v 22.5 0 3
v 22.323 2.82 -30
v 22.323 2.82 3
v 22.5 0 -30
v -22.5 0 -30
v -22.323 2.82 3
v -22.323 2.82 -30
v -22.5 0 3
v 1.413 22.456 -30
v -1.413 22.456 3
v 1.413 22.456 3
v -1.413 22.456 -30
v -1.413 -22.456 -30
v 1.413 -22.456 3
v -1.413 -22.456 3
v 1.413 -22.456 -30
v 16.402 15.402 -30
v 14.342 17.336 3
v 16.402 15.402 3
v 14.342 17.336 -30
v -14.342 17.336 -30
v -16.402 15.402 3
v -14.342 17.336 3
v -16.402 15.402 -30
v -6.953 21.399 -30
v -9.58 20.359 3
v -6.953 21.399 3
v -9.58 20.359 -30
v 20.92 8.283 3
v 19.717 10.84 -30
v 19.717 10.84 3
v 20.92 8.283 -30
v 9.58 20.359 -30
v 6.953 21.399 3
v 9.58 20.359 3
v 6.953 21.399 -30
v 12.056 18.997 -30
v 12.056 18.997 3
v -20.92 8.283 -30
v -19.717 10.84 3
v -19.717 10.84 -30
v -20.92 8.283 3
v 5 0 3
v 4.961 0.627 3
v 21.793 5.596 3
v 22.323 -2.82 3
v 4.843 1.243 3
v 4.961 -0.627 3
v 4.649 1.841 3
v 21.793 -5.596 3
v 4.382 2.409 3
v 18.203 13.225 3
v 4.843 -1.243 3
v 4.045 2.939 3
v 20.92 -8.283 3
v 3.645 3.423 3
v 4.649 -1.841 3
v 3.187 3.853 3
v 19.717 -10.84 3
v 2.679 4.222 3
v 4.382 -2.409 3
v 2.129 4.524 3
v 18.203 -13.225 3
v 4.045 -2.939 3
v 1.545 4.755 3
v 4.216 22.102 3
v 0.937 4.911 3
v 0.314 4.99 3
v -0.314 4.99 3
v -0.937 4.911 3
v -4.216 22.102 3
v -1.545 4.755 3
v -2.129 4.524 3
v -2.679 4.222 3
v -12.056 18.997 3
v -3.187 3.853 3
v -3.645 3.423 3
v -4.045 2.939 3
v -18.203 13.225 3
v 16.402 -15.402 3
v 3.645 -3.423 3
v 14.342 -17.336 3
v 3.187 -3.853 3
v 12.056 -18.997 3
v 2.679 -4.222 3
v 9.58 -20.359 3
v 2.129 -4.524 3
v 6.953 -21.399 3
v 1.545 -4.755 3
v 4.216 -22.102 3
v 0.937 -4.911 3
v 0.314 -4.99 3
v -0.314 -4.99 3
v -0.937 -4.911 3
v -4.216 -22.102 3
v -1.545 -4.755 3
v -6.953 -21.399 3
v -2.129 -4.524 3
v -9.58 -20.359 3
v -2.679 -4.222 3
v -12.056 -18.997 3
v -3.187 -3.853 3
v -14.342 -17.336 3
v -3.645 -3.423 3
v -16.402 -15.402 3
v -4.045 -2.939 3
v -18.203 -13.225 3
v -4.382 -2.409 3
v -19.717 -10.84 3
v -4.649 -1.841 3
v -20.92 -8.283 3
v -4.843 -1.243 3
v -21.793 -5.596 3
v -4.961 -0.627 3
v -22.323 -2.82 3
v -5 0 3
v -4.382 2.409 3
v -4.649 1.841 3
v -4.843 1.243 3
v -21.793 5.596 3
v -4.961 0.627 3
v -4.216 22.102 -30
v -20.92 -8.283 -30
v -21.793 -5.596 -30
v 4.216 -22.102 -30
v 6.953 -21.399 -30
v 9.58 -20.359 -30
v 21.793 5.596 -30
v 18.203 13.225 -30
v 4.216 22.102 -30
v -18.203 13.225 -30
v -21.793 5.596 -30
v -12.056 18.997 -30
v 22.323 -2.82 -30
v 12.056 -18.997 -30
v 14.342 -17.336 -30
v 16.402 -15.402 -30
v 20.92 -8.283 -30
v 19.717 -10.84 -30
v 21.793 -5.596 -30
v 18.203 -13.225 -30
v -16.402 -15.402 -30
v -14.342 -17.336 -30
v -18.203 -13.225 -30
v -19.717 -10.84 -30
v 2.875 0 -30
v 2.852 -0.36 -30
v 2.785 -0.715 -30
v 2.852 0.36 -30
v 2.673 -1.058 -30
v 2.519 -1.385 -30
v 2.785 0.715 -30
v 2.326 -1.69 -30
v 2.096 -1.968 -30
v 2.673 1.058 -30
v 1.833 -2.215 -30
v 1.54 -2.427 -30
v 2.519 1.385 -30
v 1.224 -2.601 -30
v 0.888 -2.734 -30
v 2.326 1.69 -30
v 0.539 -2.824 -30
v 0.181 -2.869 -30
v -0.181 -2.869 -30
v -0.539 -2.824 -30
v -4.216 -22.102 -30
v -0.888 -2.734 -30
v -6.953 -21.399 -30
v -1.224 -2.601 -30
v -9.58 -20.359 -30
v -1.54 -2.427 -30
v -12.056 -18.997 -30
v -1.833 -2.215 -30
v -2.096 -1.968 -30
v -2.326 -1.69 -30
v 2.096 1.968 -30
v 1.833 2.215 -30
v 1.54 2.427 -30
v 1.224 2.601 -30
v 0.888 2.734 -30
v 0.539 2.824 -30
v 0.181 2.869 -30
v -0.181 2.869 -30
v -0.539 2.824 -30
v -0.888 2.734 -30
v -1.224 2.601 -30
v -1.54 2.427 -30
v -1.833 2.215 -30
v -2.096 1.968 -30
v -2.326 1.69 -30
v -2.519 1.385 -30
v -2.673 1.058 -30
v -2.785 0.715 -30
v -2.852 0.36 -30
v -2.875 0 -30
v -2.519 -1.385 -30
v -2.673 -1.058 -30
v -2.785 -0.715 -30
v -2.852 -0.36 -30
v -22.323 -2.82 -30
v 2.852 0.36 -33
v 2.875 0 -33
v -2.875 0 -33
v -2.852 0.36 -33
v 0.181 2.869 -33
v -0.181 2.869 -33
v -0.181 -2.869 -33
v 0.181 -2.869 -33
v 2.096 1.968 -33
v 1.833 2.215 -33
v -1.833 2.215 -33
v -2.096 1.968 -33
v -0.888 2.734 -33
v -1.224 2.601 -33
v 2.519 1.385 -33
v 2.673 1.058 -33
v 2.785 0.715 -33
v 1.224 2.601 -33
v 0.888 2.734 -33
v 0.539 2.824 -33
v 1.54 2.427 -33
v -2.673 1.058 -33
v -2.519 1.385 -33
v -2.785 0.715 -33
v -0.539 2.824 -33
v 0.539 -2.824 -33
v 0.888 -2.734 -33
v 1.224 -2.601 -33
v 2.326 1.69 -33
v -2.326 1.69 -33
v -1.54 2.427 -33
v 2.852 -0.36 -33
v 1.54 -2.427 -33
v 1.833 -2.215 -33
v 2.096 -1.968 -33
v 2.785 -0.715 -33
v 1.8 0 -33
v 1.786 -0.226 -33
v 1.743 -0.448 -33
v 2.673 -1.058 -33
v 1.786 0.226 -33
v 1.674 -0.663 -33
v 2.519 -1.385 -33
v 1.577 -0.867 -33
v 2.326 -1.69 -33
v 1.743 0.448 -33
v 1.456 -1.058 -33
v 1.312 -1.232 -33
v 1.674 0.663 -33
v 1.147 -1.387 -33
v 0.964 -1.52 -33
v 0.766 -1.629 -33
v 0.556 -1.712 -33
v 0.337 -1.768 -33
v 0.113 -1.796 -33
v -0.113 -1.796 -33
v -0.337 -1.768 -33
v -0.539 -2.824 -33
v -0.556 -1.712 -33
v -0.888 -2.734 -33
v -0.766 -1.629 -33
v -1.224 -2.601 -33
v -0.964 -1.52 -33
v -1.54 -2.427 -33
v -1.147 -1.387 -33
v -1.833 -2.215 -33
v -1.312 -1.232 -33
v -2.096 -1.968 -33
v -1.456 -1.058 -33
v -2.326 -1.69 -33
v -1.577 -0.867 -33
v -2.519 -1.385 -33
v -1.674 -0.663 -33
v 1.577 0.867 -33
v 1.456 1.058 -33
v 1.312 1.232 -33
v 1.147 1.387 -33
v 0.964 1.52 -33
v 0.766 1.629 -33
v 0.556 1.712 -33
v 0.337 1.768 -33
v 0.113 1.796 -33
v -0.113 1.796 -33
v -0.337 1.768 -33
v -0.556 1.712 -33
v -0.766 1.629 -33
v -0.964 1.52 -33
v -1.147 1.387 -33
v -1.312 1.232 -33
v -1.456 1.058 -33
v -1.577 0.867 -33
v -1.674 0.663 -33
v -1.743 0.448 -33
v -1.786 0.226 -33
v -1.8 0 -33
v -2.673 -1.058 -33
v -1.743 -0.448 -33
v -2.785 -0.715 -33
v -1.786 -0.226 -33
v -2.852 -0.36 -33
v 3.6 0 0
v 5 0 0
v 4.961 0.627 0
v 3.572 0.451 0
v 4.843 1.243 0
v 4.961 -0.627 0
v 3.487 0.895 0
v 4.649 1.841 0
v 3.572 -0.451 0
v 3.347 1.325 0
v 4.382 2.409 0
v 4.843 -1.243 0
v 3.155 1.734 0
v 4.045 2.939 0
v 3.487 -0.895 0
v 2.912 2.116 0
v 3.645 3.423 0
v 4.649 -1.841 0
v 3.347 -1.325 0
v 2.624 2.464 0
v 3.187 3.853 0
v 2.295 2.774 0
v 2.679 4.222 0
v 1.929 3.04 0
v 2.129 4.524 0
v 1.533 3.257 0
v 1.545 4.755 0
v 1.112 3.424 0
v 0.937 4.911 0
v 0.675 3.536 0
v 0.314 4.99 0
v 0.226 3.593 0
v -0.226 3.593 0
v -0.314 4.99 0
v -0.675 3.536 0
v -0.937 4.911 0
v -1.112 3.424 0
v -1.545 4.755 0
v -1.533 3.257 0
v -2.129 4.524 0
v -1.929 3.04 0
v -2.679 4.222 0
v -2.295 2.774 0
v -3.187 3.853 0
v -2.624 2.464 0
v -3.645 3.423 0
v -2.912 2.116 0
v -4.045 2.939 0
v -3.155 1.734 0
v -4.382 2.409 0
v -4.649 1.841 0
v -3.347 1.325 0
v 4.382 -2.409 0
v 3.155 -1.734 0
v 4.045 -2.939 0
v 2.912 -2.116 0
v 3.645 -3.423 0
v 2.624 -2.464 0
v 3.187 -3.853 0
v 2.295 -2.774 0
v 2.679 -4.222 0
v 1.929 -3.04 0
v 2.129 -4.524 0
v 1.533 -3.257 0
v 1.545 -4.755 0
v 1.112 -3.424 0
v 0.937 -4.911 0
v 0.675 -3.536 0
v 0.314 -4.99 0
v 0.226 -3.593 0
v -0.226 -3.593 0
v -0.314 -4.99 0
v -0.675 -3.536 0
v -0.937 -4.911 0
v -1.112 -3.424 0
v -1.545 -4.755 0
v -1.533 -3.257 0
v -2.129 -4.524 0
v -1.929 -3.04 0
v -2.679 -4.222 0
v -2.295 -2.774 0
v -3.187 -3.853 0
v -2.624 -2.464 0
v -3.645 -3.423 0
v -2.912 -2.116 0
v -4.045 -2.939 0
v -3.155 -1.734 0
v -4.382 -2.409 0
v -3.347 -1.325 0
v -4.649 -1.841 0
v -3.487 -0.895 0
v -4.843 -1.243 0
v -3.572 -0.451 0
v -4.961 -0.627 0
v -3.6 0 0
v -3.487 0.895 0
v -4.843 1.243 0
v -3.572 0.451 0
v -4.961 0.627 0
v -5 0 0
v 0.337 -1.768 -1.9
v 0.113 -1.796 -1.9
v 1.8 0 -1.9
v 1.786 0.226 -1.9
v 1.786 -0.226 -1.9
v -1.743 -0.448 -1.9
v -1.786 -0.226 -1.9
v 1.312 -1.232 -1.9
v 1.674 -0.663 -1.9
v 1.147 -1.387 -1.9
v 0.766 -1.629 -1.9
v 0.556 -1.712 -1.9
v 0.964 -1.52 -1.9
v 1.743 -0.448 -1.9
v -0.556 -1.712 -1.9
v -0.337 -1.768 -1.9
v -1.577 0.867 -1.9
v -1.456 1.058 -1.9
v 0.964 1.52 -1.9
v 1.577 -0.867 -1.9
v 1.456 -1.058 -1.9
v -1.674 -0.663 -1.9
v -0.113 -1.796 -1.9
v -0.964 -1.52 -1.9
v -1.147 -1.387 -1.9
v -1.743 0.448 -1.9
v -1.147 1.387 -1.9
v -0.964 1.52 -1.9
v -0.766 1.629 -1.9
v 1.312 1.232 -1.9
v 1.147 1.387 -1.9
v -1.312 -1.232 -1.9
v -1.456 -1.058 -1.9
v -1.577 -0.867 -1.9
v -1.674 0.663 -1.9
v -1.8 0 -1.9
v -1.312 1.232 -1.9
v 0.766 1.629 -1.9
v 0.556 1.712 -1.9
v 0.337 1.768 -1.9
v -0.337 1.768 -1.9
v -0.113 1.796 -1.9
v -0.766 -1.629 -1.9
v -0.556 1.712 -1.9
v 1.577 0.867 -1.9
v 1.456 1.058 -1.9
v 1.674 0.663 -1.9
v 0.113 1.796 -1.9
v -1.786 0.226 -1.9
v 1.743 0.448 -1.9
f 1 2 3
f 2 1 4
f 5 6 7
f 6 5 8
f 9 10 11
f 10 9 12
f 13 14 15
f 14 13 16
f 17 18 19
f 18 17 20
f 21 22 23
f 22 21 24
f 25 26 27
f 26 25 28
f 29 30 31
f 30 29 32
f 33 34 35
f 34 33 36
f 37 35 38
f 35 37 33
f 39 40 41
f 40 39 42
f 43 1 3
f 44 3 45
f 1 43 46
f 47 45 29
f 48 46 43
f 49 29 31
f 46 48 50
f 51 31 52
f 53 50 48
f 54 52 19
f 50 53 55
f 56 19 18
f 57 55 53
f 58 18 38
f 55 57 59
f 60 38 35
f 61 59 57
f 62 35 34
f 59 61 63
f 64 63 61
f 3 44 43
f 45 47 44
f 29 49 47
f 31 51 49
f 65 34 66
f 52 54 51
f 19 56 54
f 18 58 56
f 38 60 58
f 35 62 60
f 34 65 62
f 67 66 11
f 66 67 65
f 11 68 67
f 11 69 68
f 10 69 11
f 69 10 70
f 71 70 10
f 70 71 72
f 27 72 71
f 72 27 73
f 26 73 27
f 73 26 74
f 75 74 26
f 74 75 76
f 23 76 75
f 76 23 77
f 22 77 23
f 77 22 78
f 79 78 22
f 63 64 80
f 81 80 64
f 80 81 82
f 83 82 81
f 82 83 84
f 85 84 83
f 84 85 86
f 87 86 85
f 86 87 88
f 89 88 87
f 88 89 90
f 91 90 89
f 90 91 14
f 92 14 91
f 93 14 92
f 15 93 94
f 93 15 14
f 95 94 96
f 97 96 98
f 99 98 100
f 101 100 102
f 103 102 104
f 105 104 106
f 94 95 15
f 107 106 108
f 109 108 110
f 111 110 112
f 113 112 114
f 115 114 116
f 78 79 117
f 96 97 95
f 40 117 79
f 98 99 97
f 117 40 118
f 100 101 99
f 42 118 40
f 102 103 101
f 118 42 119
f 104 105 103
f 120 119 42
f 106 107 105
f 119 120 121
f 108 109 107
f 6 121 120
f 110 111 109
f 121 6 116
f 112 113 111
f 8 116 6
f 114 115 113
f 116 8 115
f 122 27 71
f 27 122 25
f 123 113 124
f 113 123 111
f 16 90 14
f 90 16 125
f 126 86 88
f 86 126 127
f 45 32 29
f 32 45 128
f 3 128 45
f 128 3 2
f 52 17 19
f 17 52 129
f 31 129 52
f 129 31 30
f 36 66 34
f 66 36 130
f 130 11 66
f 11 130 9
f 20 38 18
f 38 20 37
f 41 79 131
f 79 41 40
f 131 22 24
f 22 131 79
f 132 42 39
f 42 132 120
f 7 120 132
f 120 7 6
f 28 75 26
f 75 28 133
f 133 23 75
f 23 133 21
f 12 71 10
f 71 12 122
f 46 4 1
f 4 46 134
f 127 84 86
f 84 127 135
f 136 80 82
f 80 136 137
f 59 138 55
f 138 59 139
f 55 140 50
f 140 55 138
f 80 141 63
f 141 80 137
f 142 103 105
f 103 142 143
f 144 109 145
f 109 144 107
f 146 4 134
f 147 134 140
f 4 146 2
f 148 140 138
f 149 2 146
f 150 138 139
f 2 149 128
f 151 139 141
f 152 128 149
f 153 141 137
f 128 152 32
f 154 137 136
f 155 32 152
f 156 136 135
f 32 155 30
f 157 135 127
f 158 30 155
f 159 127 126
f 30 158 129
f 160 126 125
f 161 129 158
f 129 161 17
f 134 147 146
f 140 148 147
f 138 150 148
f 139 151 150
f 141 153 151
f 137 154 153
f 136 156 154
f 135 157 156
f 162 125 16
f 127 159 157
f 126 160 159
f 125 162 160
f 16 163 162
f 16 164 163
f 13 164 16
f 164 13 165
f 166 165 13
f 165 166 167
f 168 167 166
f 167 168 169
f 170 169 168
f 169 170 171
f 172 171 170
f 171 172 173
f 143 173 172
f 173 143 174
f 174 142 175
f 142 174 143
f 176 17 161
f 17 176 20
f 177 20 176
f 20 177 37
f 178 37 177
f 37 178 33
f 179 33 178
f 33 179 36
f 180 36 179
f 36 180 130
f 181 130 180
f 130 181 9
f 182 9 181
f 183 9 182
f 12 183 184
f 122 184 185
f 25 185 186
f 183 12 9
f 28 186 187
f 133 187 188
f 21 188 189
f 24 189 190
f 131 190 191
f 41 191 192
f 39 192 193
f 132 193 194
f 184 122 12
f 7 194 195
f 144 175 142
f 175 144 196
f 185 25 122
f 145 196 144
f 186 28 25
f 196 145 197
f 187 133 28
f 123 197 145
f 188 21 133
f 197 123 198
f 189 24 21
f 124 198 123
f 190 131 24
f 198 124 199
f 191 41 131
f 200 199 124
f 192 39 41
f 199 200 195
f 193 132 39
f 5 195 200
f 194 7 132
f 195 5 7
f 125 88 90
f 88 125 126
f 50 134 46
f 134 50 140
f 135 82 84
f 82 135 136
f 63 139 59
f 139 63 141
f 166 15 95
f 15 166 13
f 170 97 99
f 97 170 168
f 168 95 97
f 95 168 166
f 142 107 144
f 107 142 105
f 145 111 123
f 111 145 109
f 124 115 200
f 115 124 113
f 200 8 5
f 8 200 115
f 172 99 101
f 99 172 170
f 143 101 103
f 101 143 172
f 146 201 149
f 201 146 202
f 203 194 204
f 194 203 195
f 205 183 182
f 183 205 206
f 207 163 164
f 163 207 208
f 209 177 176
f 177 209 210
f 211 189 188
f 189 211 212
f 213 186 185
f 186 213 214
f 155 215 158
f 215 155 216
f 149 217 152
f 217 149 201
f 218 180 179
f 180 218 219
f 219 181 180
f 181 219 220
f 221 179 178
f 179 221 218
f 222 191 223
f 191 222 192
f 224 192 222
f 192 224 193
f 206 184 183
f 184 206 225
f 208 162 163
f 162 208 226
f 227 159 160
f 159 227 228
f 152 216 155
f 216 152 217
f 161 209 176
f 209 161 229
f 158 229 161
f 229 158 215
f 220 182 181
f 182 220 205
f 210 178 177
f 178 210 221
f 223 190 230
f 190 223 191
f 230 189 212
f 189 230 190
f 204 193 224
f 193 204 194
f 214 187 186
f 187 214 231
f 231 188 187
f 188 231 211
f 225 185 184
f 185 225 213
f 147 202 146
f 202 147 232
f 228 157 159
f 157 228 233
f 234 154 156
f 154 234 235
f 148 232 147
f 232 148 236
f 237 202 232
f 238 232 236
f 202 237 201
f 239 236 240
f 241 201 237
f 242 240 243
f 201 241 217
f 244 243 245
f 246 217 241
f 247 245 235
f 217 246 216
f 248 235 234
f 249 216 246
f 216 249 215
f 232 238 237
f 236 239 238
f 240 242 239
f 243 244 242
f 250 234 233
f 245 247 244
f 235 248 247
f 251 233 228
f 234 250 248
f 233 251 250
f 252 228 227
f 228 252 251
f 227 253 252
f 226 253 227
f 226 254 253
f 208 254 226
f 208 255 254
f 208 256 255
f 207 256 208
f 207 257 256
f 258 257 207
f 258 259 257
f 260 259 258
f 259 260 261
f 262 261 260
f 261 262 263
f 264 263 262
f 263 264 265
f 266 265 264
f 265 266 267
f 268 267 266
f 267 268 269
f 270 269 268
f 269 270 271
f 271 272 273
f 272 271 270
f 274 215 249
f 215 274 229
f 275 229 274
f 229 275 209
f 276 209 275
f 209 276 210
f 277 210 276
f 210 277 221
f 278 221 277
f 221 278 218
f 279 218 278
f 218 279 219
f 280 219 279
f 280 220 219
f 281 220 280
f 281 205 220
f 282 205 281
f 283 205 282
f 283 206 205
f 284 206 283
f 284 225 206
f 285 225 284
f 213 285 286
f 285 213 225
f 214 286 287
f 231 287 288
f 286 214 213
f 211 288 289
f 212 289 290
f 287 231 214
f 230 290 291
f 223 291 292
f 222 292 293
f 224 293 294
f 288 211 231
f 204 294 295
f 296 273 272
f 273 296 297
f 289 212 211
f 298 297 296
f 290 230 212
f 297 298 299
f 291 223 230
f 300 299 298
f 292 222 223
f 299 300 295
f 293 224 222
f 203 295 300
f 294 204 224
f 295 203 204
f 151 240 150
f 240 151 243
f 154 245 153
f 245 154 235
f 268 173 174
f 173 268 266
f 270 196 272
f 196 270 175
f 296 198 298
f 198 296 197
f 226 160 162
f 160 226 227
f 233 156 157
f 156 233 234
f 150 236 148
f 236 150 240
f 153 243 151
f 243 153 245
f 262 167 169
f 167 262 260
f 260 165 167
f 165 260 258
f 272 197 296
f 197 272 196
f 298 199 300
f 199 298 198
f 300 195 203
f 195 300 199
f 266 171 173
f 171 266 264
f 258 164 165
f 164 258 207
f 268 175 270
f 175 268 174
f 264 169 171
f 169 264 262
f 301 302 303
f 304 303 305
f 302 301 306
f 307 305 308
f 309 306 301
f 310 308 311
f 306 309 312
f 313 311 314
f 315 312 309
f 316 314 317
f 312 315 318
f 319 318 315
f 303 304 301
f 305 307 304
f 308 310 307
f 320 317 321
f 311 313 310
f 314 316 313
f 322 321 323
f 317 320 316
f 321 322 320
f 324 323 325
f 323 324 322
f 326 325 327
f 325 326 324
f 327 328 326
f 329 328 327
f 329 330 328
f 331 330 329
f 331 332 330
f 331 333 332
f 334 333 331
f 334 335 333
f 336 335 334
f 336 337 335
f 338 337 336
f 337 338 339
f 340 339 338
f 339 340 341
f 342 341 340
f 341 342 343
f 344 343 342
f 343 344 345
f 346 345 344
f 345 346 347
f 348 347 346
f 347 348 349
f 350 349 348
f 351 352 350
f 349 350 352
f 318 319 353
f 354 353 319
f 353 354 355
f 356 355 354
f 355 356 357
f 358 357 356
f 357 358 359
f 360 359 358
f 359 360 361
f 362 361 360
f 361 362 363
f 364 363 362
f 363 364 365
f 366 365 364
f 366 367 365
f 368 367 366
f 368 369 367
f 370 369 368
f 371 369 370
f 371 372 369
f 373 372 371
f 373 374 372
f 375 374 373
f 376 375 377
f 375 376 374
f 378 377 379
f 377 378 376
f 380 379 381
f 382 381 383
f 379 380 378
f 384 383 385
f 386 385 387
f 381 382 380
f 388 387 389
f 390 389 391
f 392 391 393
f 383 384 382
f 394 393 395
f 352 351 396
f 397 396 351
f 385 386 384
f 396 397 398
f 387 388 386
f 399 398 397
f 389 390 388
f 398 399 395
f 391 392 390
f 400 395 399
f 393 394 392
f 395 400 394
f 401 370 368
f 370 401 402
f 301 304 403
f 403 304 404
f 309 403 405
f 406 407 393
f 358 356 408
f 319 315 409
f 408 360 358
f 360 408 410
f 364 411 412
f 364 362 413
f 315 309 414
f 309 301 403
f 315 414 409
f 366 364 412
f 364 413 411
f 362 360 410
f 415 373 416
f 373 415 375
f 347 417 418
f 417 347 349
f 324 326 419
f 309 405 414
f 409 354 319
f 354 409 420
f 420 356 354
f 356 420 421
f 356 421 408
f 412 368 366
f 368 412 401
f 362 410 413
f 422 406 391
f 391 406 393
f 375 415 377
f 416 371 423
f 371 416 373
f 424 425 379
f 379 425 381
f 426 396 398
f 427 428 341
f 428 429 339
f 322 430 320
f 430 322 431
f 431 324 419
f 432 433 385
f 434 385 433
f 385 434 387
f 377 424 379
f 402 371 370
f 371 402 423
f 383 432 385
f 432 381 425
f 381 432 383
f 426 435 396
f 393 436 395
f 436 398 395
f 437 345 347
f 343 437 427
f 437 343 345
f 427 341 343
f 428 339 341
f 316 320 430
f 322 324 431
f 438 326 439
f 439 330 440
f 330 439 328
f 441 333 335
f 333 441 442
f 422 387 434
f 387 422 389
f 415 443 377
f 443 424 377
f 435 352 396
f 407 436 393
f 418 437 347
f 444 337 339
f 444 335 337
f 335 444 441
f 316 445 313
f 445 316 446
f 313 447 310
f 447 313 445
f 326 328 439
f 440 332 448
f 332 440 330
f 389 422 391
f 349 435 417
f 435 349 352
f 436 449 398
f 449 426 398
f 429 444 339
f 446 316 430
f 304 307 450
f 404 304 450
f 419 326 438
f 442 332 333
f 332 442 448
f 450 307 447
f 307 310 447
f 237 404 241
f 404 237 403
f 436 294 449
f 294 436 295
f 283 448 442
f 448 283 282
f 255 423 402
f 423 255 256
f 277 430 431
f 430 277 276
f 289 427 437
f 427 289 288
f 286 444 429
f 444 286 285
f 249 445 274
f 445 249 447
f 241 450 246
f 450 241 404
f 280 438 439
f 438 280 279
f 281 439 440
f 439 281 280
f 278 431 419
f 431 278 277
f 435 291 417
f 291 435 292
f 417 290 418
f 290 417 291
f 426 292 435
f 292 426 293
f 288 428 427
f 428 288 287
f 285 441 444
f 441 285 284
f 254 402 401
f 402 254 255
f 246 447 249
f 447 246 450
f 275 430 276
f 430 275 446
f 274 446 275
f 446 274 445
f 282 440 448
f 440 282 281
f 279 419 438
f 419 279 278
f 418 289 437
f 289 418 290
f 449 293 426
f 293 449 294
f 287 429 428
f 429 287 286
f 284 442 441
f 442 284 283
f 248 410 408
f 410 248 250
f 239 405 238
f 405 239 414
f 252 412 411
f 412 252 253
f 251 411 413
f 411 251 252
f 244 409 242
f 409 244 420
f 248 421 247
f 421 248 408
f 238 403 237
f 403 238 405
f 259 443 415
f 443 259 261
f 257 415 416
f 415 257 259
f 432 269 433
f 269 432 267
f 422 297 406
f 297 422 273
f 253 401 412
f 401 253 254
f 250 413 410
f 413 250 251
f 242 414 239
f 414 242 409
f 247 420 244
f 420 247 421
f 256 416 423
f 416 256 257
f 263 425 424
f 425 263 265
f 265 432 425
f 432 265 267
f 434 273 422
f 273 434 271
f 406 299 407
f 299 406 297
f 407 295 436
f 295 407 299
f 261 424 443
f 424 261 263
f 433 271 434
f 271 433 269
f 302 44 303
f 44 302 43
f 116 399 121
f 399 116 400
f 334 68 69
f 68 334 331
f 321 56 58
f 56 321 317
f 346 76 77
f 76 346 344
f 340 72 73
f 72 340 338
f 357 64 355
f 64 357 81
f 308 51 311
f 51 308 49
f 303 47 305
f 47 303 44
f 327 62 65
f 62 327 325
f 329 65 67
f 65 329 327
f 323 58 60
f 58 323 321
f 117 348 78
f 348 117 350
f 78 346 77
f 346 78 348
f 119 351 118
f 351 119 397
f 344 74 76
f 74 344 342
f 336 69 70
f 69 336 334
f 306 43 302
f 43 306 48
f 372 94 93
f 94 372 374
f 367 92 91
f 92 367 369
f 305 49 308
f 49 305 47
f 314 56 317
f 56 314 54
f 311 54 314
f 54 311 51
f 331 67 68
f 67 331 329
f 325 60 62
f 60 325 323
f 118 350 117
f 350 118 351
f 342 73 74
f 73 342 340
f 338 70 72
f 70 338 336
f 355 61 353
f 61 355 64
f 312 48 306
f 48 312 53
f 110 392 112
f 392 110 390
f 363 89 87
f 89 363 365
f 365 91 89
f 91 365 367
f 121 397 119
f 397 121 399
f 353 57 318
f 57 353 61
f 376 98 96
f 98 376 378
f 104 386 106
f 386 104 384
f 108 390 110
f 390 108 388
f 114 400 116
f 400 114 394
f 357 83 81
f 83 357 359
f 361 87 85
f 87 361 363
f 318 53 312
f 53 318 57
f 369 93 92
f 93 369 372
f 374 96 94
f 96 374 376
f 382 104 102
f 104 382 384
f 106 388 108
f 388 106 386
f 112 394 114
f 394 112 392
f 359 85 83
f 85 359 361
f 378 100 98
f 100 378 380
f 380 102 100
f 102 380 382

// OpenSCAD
$fn = 50;

difference() {
	union() {
		translate(v = [0, 0, -30.0]) {
			cylinder(h = 33, r = 22.5);
		}
		#translate(v = [0, 0, -33.0]) {
			cylinder(h = 33, r = 2.875);
		}
	}
	union() {
		translate(v = [0, 0, 0]) {
			rotate(a = [0, 0, 0]) {
				difference() {
					union() {
						translate(v = [0, 0, -33.0]) {
							cylinder(h = 33, r = 1.5);
						}
						translate(v = [0, 0, -1.9]) {
							cylinder(h = 1.9, r1 = 1.8, r2 = 3.6);
						}
						translate(v = [0, 0, -33.0]) {
							cylinder(h = 33, r = 1.8);
						}
						translate(v = [0, 0, -33.0]) {
							cylinder(h = 33, r = 1.5);
						}
					}
					union();
				}
			}
		}
		#cylinder(h = 3, r = 5.0);
	}
}
